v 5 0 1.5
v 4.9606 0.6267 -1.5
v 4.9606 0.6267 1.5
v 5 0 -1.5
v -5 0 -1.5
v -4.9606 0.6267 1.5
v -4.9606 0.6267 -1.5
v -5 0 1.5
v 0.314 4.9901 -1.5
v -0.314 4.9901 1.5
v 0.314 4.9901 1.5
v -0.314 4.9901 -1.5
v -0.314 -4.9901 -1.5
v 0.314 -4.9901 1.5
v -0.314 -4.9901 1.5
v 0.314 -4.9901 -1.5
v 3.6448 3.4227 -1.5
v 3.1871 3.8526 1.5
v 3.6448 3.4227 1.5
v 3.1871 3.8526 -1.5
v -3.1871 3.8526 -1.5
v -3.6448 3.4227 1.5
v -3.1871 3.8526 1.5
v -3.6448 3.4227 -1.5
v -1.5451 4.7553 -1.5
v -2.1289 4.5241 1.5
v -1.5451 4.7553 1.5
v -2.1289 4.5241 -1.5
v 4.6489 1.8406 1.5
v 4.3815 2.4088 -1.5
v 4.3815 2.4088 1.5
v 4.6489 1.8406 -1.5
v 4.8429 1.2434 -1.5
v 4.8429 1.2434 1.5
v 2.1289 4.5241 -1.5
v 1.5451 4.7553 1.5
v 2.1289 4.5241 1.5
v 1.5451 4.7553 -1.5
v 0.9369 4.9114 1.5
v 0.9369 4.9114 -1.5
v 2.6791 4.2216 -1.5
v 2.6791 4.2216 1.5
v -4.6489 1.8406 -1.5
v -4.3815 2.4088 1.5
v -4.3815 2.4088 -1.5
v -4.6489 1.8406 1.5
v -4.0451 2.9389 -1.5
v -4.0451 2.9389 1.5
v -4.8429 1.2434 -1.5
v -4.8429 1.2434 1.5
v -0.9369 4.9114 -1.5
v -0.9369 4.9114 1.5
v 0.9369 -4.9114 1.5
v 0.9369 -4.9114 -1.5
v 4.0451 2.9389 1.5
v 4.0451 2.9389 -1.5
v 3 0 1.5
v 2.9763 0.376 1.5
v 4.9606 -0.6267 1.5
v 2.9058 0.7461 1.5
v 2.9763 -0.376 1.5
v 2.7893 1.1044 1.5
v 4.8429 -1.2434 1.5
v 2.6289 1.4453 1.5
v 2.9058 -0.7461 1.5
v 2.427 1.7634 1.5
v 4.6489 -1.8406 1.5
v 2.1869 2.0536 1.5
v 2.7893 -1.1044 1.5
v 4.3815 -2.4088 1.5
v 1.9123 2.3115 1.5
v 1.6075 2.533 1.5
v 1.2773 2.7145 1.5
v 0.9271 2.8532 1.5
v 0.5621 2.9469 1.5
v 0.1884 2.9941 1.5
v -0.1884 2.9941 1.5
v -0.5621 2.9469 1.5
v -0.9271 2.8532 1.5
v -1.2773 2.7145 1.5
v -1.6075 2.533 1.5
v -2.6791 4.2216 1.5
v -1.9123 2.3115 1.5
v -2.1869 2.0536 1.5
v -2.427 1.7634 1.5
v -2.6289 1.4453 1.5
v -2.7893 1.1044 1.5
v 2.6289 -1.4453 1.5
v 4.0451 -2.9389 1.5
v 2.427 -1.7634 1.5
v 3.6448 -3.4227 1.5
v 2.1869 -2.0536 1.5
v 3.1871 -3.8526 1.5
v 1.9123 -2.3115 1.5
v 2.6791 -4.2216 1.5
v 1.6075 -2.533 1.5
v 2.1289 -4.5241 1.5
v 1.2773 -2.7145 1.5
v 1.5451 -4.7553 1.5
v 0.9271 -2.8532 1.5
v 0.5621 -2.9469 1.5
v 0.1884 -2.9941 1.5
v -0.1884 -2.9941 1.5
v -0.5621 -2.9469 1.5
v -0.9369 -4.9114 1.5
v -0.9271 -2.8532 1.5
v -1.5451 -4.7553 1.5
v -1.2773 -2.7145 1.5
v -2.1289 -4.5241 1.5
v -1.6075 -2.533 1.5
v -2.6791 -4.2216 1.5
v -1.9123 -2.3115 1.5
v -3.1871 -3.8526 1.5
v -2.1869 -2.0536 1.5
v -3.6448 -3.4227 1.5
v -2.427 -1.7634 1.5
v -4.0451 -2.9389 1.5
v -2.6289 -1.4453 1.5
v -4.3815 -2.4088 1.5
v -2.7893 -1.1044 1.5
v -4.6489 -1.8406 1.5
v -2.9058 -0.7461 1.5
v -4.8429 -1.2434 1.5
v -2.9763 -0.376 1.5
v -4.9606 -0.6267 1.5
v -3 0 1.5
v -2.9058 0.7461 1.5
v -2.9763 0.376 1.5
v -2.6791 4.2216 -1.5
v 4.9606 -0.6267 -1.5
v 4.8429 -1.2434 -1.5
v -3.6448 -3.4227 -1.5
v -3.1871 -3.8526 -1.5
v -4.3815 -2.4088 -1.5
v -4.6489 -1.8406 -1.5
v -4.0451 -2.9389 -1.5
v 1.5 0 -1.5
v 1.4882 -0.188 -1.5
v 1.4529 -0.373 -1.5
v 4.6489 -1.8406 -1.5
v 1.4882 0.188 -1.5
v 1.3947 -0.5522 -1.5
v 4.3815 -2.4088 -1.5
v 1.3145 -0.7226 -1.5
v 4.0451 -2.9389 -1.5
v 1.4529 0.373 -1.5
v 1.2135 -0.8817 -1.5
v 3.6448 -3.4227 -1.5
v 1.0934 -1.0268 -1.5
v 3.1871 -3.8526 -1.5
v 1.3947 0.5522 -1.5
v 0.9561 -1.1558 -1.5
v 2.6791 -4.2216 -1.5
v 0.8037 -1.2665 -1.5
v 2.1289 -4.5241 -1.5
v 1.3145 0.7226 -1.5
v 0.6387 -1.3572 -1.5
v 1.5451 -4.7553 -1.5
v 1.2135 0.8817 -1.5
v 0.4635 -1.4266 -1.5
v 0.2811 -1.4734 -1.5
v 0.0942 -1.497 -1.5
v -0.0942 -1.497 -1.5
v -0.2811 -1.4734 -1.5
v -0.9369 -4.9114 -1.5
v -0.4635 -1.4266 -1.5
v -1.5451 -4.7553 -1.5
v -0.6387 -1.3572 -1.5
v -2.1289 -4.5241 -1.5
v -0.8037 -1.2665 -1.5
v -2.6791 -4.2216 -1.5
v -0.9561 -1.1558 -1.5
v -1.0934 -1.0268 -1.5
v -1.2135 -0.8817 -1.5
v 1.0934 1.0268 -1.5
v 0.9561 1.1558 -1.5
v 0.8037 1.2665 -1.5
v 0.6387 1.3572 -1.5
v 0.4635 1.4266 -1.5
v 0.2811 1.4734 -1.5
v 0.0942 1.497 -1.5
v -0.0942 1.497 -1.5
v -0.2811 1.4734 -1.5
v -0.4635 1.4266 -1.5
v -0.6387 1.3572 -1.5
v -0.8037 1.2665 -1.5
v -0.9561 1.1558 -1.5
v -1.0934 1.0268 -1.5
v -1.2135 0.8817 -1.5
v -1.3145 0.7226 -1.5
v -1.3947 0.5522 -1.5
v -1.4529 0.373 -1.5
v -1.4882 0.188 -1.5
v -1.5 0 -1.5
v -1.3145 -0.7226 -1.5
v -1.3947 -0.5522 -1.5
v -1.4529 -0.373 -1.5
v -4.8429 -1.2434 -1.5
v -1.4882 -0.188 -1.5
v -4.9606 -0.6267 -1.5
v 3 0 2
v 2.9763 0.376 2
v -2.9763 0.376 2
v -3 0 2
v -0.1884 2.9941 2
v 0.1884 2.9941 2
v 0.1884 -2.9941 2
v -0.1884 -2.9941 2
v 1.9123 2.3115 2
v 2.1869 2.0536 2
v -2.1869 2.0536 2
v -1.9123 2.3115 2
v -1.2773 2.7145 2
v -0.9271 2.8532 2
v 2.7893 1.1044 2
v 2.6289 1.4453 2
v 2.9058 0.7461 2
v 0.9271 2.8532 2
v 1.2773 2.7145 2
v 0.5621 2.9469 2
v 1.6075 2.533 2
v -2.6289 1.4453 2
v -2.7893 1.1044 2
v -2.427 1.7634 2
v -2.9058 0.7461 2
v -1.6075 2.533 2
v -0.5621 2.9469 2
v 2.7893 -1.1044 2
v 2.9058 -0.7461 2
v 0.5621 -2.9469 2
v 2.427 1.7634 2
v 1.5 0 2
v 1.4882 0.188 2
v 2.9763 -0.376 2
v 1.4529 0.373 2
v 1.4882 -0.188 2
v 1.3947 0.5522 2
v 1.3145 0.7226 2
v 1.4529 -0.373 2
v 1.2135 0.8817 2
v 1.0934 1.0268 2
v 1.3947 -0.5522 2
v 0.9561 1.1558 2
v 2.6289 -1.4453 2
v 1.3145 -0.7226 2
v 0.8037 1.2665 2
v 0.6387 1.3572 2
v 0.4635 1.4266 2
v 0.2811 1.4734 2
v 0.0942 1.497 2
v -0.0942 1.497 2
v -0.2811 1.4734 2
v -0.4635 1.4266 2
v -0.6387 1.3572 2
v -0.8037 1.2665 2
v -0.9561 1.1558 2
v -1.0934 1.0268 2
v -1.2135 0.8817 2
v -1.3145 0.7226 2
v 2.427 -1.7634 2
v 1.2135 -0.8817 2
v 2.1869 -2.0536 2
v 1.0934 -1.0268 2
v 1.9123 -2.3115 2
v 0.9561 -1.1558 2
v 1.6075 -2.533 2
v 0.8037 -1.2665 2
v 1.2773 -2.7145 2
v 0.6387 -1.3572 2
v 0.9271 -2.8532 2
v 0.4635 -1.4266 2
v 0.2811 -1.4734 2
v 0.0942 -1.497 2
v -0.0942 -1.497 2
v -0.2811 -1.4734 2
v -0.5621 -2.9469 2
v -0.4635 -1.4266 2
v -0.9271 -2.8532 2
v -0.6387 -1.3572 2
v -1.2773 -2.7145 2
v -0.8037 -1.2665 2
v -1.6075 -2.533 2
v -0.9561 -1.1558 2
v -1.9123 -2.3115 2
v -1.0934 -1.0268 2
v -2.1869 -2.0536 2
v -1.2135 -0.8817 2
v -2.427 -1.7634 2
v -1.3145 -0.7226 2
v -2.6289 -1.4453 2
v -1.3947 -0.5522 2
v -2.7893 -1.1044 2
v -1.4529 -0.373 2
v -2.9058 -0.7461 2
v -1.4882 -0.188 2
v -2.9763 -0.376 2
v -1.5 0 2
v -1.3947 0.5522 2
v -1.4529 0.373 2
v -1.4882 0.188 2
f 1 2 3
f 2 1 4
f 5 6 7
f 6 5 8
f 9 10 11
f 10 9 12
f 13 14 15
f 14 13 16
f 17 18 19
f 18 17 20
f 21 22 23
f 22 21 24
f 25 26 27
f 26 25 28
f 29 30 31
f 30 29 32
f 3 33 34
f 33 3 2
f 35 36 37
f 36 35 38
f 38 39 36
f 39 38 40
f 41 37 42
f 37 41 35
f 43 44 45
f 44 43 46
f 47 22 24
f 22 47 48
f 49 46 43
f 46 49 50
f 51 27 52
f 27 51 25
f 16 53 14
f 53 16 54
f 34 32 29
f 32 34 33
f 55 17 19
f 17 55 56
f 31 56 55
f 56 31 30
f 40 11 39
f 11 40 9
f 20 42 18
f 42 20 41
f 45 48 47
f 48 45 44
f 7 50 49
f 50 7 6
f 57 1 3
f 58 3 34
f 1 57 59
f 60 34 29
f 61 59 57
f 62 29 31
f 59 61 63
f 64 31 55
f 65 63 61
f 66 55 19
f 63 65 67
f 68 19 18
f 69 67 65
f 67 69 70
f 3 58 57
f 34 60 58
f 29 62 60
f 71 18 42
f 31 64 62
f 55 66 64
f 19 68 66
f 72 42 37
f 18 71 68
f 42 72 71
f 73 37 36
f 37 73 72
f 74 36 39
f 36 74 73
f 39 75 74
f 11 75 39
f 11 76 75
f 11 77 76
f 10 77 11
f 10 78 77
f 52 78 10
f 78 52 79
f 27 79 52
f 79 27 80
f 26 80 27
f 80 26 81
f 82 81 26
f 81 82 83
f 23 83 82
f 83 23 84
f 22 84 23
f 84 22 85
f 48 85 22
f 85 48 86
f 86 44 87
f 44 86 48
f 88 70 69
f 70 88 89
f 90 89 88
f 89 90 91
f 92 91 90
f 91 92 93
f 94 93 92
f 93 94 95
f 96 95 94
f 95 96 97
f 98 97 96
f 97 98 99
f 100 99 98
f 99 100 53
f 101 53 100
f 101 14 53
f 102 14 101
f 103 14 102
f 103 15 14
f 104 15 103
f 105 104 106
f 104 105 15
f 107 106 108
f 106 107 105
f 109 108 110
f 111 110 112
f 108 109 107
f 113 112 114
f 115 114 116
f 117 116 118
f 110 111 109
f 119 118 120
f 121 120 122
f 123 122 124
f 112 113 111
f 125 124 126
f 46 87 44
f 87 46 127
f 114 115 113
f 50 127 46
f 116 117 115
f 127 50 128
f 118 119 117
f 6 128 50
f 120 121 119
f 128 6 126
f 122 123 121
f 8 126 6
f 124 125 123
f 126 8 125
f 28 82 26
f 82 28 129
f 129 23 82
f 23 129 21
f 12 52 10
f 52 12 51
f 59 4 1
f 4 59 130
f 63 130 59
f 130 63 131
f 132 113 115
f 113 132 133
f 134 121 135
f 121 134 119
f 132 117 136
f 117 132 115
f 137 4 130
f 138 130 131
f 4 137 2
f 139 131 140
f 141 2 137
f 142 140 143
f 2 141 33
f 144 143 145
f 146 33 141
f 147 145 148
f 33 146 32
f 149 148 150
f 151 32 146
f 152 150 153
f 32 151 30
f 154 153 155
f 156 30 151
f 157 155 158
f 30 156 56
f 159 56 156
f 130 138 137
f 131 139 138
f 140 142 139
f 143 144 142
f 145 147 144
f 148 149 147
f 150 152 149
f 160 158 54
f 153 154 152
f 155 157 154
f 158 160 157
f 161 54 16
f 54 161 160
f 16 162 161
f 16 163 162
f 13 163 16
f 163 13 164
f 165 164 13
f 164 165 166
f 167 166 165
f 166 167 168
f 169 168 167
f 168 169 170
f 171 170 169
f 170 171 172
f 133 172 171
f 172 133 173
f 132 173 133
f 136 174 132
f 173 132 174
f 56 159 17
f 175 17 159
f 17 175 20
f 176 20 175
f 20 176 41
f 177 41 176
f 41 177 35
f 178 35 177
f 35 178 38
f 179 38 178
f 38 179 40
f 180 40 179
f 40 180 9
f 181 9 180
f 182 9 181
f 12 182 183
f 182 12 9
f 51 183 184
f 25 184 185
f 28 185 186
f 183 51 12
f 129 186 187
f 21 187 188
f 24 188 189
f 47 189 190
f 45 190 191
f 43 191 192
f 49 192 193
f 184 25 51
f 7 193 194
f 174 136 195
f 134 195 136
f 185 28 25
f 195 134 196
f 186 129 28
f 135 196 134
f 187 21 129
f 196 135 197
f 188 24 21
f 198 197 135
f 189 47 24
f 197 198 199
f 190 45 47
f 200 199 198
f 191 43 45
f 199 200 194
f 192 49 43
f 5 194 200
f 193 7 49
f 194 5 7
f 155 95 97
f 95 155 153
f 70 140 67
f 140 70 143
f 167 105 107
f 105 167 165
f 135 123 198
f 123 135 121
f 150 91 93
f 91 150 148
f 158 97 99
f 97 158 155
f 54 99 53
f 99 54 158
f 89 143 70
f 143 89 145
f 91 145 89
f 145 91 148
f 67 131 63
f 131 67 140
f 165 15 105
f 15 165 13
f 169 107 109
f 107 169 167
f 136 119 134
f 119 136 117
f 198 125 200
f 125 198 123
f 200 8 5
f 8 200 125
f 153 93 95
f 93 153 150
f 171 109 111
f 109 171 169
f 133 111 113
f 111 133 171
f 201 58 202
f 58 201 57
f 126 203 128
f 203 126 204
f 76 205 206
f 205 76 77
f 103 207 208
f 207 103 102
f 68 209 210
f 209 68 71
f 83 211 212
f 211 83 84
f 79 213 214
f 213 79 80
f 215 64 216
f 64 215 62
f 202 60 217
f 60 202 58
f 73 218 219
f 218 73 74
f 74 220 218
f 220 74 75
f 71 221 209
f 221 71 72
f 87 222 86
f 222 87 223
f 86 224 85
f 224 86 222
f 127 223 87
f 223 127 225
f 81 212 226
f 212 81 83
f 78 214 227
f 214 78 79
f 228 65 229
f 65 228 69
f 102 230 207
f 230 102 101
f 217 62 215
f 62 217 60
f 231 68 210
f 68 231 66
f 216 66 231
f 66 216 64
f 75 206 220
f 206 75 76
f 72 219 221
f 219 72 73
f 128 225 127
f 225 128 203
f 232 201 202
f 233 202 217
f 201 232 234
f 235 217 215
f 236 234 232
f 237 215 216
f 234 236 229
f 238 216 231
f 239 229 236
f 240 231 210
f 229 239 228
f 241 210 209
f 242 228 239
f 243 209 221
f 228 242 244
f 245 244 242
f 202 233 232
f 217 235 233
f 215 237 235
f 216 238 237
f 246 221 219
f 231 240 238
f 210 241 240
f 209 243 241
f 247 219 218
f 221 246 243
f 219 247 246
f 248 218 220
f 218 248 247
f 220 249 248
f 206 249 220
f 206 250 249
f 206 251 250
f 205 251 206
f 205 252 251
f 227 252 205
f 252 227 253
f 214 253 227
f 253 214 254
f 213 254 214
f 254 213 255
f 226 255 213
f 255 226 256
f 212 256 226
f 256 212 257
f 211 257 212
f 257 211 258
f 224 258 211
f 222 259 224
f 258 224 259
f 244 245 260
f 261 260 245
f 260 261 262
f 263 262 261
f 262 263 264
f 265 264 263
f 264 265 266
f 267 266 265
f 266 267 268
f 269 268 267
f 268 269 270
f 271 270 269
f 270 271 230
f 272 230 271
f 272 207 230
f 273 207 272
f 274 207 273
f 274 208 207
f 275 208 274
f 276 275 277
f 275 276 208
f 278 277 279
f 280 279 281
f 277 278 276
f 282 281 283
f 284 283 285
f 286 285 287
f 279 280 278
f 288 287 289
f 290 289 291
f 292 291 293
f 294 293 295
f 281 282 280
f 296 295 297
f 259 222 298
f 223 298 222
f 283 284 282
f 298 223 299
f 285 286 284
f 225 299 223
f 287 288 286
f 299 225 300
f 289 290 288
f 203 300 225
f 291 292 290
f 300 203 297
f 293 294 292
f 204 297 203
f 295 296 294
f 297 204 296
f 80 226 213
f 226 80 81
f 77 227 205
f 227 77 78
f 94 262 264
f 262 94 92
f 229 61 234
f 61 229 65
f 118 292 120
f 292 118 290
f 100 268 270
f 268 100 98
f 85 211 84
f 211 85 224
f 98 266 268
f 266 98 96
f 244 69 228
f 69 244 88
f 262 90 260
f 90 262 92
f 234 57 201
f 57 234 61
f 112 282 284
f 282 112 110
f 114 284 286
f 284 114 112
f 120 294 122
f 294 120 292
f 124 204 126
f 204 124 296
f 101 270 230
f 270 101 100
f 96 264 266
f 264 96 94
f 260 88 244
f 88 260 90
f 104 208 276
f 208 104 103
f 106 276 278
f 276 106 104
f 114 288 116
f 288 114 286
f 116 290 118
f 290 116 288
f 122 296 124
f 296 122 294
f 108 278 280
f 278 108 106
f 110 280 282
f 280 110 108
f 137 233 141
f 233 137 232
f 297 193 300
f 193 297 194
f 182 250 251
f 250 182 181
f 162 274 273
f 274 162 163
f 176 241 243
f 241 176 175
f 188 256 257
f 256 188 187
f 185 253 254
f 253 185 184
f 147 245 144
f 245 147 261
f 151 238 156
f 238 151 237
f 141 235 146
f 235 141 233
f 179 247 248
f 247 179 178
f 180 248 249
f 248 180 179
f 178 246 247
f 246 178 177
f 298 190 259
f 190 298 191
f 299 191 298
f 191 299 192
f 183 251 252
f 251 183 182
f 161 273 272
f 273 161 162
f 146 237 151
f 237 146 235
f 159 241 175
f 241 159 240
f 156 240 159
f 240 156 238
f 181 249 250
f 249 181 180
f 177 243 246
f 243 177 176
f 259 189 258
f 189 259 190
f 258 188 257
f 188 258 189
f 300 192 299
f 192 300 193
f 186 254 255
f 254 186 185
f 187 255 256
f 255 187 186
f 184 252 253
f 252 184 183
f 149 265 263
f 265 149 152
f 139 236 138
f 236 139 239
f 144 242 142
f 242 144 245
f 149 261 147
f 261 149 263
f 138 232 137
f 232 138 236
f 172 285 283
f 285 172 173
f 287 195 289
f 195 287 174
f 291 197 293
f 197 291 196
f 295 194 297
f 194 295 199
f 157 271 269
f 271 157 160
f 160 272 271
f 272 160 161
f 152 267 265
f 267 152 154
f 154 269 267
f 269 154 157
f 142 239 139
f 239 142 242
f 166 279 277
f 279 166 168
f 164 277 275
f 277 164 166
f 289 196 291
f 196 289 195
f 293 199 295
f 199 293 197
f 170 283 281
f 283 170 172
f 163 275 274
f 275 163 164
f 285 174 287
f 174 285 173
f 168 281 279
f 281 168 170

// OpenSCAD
$fn = 50;


difference() {
	union() {
		translate(v = [0, 0, -1.5000000000]) {
			rotate(a = [0, 0, 0]) {
				cylinder(h = 3, r = 5.0000000000);
			}
		}
		translate(v = [0, 0, -1.5000000000]) {
			rotate(a = [0, 0, 0]) {
				cylinder(h = 3.5000000000, r = 3.0000000000);
			}
		}
	}
	union() {
		translate(v = [0, 0, -125.0000000000]) {
			rotate(a = [0, 0, 0]) {
				cylinder(h = 250, r = 1.5000000000);
			}
		}
	}
}
